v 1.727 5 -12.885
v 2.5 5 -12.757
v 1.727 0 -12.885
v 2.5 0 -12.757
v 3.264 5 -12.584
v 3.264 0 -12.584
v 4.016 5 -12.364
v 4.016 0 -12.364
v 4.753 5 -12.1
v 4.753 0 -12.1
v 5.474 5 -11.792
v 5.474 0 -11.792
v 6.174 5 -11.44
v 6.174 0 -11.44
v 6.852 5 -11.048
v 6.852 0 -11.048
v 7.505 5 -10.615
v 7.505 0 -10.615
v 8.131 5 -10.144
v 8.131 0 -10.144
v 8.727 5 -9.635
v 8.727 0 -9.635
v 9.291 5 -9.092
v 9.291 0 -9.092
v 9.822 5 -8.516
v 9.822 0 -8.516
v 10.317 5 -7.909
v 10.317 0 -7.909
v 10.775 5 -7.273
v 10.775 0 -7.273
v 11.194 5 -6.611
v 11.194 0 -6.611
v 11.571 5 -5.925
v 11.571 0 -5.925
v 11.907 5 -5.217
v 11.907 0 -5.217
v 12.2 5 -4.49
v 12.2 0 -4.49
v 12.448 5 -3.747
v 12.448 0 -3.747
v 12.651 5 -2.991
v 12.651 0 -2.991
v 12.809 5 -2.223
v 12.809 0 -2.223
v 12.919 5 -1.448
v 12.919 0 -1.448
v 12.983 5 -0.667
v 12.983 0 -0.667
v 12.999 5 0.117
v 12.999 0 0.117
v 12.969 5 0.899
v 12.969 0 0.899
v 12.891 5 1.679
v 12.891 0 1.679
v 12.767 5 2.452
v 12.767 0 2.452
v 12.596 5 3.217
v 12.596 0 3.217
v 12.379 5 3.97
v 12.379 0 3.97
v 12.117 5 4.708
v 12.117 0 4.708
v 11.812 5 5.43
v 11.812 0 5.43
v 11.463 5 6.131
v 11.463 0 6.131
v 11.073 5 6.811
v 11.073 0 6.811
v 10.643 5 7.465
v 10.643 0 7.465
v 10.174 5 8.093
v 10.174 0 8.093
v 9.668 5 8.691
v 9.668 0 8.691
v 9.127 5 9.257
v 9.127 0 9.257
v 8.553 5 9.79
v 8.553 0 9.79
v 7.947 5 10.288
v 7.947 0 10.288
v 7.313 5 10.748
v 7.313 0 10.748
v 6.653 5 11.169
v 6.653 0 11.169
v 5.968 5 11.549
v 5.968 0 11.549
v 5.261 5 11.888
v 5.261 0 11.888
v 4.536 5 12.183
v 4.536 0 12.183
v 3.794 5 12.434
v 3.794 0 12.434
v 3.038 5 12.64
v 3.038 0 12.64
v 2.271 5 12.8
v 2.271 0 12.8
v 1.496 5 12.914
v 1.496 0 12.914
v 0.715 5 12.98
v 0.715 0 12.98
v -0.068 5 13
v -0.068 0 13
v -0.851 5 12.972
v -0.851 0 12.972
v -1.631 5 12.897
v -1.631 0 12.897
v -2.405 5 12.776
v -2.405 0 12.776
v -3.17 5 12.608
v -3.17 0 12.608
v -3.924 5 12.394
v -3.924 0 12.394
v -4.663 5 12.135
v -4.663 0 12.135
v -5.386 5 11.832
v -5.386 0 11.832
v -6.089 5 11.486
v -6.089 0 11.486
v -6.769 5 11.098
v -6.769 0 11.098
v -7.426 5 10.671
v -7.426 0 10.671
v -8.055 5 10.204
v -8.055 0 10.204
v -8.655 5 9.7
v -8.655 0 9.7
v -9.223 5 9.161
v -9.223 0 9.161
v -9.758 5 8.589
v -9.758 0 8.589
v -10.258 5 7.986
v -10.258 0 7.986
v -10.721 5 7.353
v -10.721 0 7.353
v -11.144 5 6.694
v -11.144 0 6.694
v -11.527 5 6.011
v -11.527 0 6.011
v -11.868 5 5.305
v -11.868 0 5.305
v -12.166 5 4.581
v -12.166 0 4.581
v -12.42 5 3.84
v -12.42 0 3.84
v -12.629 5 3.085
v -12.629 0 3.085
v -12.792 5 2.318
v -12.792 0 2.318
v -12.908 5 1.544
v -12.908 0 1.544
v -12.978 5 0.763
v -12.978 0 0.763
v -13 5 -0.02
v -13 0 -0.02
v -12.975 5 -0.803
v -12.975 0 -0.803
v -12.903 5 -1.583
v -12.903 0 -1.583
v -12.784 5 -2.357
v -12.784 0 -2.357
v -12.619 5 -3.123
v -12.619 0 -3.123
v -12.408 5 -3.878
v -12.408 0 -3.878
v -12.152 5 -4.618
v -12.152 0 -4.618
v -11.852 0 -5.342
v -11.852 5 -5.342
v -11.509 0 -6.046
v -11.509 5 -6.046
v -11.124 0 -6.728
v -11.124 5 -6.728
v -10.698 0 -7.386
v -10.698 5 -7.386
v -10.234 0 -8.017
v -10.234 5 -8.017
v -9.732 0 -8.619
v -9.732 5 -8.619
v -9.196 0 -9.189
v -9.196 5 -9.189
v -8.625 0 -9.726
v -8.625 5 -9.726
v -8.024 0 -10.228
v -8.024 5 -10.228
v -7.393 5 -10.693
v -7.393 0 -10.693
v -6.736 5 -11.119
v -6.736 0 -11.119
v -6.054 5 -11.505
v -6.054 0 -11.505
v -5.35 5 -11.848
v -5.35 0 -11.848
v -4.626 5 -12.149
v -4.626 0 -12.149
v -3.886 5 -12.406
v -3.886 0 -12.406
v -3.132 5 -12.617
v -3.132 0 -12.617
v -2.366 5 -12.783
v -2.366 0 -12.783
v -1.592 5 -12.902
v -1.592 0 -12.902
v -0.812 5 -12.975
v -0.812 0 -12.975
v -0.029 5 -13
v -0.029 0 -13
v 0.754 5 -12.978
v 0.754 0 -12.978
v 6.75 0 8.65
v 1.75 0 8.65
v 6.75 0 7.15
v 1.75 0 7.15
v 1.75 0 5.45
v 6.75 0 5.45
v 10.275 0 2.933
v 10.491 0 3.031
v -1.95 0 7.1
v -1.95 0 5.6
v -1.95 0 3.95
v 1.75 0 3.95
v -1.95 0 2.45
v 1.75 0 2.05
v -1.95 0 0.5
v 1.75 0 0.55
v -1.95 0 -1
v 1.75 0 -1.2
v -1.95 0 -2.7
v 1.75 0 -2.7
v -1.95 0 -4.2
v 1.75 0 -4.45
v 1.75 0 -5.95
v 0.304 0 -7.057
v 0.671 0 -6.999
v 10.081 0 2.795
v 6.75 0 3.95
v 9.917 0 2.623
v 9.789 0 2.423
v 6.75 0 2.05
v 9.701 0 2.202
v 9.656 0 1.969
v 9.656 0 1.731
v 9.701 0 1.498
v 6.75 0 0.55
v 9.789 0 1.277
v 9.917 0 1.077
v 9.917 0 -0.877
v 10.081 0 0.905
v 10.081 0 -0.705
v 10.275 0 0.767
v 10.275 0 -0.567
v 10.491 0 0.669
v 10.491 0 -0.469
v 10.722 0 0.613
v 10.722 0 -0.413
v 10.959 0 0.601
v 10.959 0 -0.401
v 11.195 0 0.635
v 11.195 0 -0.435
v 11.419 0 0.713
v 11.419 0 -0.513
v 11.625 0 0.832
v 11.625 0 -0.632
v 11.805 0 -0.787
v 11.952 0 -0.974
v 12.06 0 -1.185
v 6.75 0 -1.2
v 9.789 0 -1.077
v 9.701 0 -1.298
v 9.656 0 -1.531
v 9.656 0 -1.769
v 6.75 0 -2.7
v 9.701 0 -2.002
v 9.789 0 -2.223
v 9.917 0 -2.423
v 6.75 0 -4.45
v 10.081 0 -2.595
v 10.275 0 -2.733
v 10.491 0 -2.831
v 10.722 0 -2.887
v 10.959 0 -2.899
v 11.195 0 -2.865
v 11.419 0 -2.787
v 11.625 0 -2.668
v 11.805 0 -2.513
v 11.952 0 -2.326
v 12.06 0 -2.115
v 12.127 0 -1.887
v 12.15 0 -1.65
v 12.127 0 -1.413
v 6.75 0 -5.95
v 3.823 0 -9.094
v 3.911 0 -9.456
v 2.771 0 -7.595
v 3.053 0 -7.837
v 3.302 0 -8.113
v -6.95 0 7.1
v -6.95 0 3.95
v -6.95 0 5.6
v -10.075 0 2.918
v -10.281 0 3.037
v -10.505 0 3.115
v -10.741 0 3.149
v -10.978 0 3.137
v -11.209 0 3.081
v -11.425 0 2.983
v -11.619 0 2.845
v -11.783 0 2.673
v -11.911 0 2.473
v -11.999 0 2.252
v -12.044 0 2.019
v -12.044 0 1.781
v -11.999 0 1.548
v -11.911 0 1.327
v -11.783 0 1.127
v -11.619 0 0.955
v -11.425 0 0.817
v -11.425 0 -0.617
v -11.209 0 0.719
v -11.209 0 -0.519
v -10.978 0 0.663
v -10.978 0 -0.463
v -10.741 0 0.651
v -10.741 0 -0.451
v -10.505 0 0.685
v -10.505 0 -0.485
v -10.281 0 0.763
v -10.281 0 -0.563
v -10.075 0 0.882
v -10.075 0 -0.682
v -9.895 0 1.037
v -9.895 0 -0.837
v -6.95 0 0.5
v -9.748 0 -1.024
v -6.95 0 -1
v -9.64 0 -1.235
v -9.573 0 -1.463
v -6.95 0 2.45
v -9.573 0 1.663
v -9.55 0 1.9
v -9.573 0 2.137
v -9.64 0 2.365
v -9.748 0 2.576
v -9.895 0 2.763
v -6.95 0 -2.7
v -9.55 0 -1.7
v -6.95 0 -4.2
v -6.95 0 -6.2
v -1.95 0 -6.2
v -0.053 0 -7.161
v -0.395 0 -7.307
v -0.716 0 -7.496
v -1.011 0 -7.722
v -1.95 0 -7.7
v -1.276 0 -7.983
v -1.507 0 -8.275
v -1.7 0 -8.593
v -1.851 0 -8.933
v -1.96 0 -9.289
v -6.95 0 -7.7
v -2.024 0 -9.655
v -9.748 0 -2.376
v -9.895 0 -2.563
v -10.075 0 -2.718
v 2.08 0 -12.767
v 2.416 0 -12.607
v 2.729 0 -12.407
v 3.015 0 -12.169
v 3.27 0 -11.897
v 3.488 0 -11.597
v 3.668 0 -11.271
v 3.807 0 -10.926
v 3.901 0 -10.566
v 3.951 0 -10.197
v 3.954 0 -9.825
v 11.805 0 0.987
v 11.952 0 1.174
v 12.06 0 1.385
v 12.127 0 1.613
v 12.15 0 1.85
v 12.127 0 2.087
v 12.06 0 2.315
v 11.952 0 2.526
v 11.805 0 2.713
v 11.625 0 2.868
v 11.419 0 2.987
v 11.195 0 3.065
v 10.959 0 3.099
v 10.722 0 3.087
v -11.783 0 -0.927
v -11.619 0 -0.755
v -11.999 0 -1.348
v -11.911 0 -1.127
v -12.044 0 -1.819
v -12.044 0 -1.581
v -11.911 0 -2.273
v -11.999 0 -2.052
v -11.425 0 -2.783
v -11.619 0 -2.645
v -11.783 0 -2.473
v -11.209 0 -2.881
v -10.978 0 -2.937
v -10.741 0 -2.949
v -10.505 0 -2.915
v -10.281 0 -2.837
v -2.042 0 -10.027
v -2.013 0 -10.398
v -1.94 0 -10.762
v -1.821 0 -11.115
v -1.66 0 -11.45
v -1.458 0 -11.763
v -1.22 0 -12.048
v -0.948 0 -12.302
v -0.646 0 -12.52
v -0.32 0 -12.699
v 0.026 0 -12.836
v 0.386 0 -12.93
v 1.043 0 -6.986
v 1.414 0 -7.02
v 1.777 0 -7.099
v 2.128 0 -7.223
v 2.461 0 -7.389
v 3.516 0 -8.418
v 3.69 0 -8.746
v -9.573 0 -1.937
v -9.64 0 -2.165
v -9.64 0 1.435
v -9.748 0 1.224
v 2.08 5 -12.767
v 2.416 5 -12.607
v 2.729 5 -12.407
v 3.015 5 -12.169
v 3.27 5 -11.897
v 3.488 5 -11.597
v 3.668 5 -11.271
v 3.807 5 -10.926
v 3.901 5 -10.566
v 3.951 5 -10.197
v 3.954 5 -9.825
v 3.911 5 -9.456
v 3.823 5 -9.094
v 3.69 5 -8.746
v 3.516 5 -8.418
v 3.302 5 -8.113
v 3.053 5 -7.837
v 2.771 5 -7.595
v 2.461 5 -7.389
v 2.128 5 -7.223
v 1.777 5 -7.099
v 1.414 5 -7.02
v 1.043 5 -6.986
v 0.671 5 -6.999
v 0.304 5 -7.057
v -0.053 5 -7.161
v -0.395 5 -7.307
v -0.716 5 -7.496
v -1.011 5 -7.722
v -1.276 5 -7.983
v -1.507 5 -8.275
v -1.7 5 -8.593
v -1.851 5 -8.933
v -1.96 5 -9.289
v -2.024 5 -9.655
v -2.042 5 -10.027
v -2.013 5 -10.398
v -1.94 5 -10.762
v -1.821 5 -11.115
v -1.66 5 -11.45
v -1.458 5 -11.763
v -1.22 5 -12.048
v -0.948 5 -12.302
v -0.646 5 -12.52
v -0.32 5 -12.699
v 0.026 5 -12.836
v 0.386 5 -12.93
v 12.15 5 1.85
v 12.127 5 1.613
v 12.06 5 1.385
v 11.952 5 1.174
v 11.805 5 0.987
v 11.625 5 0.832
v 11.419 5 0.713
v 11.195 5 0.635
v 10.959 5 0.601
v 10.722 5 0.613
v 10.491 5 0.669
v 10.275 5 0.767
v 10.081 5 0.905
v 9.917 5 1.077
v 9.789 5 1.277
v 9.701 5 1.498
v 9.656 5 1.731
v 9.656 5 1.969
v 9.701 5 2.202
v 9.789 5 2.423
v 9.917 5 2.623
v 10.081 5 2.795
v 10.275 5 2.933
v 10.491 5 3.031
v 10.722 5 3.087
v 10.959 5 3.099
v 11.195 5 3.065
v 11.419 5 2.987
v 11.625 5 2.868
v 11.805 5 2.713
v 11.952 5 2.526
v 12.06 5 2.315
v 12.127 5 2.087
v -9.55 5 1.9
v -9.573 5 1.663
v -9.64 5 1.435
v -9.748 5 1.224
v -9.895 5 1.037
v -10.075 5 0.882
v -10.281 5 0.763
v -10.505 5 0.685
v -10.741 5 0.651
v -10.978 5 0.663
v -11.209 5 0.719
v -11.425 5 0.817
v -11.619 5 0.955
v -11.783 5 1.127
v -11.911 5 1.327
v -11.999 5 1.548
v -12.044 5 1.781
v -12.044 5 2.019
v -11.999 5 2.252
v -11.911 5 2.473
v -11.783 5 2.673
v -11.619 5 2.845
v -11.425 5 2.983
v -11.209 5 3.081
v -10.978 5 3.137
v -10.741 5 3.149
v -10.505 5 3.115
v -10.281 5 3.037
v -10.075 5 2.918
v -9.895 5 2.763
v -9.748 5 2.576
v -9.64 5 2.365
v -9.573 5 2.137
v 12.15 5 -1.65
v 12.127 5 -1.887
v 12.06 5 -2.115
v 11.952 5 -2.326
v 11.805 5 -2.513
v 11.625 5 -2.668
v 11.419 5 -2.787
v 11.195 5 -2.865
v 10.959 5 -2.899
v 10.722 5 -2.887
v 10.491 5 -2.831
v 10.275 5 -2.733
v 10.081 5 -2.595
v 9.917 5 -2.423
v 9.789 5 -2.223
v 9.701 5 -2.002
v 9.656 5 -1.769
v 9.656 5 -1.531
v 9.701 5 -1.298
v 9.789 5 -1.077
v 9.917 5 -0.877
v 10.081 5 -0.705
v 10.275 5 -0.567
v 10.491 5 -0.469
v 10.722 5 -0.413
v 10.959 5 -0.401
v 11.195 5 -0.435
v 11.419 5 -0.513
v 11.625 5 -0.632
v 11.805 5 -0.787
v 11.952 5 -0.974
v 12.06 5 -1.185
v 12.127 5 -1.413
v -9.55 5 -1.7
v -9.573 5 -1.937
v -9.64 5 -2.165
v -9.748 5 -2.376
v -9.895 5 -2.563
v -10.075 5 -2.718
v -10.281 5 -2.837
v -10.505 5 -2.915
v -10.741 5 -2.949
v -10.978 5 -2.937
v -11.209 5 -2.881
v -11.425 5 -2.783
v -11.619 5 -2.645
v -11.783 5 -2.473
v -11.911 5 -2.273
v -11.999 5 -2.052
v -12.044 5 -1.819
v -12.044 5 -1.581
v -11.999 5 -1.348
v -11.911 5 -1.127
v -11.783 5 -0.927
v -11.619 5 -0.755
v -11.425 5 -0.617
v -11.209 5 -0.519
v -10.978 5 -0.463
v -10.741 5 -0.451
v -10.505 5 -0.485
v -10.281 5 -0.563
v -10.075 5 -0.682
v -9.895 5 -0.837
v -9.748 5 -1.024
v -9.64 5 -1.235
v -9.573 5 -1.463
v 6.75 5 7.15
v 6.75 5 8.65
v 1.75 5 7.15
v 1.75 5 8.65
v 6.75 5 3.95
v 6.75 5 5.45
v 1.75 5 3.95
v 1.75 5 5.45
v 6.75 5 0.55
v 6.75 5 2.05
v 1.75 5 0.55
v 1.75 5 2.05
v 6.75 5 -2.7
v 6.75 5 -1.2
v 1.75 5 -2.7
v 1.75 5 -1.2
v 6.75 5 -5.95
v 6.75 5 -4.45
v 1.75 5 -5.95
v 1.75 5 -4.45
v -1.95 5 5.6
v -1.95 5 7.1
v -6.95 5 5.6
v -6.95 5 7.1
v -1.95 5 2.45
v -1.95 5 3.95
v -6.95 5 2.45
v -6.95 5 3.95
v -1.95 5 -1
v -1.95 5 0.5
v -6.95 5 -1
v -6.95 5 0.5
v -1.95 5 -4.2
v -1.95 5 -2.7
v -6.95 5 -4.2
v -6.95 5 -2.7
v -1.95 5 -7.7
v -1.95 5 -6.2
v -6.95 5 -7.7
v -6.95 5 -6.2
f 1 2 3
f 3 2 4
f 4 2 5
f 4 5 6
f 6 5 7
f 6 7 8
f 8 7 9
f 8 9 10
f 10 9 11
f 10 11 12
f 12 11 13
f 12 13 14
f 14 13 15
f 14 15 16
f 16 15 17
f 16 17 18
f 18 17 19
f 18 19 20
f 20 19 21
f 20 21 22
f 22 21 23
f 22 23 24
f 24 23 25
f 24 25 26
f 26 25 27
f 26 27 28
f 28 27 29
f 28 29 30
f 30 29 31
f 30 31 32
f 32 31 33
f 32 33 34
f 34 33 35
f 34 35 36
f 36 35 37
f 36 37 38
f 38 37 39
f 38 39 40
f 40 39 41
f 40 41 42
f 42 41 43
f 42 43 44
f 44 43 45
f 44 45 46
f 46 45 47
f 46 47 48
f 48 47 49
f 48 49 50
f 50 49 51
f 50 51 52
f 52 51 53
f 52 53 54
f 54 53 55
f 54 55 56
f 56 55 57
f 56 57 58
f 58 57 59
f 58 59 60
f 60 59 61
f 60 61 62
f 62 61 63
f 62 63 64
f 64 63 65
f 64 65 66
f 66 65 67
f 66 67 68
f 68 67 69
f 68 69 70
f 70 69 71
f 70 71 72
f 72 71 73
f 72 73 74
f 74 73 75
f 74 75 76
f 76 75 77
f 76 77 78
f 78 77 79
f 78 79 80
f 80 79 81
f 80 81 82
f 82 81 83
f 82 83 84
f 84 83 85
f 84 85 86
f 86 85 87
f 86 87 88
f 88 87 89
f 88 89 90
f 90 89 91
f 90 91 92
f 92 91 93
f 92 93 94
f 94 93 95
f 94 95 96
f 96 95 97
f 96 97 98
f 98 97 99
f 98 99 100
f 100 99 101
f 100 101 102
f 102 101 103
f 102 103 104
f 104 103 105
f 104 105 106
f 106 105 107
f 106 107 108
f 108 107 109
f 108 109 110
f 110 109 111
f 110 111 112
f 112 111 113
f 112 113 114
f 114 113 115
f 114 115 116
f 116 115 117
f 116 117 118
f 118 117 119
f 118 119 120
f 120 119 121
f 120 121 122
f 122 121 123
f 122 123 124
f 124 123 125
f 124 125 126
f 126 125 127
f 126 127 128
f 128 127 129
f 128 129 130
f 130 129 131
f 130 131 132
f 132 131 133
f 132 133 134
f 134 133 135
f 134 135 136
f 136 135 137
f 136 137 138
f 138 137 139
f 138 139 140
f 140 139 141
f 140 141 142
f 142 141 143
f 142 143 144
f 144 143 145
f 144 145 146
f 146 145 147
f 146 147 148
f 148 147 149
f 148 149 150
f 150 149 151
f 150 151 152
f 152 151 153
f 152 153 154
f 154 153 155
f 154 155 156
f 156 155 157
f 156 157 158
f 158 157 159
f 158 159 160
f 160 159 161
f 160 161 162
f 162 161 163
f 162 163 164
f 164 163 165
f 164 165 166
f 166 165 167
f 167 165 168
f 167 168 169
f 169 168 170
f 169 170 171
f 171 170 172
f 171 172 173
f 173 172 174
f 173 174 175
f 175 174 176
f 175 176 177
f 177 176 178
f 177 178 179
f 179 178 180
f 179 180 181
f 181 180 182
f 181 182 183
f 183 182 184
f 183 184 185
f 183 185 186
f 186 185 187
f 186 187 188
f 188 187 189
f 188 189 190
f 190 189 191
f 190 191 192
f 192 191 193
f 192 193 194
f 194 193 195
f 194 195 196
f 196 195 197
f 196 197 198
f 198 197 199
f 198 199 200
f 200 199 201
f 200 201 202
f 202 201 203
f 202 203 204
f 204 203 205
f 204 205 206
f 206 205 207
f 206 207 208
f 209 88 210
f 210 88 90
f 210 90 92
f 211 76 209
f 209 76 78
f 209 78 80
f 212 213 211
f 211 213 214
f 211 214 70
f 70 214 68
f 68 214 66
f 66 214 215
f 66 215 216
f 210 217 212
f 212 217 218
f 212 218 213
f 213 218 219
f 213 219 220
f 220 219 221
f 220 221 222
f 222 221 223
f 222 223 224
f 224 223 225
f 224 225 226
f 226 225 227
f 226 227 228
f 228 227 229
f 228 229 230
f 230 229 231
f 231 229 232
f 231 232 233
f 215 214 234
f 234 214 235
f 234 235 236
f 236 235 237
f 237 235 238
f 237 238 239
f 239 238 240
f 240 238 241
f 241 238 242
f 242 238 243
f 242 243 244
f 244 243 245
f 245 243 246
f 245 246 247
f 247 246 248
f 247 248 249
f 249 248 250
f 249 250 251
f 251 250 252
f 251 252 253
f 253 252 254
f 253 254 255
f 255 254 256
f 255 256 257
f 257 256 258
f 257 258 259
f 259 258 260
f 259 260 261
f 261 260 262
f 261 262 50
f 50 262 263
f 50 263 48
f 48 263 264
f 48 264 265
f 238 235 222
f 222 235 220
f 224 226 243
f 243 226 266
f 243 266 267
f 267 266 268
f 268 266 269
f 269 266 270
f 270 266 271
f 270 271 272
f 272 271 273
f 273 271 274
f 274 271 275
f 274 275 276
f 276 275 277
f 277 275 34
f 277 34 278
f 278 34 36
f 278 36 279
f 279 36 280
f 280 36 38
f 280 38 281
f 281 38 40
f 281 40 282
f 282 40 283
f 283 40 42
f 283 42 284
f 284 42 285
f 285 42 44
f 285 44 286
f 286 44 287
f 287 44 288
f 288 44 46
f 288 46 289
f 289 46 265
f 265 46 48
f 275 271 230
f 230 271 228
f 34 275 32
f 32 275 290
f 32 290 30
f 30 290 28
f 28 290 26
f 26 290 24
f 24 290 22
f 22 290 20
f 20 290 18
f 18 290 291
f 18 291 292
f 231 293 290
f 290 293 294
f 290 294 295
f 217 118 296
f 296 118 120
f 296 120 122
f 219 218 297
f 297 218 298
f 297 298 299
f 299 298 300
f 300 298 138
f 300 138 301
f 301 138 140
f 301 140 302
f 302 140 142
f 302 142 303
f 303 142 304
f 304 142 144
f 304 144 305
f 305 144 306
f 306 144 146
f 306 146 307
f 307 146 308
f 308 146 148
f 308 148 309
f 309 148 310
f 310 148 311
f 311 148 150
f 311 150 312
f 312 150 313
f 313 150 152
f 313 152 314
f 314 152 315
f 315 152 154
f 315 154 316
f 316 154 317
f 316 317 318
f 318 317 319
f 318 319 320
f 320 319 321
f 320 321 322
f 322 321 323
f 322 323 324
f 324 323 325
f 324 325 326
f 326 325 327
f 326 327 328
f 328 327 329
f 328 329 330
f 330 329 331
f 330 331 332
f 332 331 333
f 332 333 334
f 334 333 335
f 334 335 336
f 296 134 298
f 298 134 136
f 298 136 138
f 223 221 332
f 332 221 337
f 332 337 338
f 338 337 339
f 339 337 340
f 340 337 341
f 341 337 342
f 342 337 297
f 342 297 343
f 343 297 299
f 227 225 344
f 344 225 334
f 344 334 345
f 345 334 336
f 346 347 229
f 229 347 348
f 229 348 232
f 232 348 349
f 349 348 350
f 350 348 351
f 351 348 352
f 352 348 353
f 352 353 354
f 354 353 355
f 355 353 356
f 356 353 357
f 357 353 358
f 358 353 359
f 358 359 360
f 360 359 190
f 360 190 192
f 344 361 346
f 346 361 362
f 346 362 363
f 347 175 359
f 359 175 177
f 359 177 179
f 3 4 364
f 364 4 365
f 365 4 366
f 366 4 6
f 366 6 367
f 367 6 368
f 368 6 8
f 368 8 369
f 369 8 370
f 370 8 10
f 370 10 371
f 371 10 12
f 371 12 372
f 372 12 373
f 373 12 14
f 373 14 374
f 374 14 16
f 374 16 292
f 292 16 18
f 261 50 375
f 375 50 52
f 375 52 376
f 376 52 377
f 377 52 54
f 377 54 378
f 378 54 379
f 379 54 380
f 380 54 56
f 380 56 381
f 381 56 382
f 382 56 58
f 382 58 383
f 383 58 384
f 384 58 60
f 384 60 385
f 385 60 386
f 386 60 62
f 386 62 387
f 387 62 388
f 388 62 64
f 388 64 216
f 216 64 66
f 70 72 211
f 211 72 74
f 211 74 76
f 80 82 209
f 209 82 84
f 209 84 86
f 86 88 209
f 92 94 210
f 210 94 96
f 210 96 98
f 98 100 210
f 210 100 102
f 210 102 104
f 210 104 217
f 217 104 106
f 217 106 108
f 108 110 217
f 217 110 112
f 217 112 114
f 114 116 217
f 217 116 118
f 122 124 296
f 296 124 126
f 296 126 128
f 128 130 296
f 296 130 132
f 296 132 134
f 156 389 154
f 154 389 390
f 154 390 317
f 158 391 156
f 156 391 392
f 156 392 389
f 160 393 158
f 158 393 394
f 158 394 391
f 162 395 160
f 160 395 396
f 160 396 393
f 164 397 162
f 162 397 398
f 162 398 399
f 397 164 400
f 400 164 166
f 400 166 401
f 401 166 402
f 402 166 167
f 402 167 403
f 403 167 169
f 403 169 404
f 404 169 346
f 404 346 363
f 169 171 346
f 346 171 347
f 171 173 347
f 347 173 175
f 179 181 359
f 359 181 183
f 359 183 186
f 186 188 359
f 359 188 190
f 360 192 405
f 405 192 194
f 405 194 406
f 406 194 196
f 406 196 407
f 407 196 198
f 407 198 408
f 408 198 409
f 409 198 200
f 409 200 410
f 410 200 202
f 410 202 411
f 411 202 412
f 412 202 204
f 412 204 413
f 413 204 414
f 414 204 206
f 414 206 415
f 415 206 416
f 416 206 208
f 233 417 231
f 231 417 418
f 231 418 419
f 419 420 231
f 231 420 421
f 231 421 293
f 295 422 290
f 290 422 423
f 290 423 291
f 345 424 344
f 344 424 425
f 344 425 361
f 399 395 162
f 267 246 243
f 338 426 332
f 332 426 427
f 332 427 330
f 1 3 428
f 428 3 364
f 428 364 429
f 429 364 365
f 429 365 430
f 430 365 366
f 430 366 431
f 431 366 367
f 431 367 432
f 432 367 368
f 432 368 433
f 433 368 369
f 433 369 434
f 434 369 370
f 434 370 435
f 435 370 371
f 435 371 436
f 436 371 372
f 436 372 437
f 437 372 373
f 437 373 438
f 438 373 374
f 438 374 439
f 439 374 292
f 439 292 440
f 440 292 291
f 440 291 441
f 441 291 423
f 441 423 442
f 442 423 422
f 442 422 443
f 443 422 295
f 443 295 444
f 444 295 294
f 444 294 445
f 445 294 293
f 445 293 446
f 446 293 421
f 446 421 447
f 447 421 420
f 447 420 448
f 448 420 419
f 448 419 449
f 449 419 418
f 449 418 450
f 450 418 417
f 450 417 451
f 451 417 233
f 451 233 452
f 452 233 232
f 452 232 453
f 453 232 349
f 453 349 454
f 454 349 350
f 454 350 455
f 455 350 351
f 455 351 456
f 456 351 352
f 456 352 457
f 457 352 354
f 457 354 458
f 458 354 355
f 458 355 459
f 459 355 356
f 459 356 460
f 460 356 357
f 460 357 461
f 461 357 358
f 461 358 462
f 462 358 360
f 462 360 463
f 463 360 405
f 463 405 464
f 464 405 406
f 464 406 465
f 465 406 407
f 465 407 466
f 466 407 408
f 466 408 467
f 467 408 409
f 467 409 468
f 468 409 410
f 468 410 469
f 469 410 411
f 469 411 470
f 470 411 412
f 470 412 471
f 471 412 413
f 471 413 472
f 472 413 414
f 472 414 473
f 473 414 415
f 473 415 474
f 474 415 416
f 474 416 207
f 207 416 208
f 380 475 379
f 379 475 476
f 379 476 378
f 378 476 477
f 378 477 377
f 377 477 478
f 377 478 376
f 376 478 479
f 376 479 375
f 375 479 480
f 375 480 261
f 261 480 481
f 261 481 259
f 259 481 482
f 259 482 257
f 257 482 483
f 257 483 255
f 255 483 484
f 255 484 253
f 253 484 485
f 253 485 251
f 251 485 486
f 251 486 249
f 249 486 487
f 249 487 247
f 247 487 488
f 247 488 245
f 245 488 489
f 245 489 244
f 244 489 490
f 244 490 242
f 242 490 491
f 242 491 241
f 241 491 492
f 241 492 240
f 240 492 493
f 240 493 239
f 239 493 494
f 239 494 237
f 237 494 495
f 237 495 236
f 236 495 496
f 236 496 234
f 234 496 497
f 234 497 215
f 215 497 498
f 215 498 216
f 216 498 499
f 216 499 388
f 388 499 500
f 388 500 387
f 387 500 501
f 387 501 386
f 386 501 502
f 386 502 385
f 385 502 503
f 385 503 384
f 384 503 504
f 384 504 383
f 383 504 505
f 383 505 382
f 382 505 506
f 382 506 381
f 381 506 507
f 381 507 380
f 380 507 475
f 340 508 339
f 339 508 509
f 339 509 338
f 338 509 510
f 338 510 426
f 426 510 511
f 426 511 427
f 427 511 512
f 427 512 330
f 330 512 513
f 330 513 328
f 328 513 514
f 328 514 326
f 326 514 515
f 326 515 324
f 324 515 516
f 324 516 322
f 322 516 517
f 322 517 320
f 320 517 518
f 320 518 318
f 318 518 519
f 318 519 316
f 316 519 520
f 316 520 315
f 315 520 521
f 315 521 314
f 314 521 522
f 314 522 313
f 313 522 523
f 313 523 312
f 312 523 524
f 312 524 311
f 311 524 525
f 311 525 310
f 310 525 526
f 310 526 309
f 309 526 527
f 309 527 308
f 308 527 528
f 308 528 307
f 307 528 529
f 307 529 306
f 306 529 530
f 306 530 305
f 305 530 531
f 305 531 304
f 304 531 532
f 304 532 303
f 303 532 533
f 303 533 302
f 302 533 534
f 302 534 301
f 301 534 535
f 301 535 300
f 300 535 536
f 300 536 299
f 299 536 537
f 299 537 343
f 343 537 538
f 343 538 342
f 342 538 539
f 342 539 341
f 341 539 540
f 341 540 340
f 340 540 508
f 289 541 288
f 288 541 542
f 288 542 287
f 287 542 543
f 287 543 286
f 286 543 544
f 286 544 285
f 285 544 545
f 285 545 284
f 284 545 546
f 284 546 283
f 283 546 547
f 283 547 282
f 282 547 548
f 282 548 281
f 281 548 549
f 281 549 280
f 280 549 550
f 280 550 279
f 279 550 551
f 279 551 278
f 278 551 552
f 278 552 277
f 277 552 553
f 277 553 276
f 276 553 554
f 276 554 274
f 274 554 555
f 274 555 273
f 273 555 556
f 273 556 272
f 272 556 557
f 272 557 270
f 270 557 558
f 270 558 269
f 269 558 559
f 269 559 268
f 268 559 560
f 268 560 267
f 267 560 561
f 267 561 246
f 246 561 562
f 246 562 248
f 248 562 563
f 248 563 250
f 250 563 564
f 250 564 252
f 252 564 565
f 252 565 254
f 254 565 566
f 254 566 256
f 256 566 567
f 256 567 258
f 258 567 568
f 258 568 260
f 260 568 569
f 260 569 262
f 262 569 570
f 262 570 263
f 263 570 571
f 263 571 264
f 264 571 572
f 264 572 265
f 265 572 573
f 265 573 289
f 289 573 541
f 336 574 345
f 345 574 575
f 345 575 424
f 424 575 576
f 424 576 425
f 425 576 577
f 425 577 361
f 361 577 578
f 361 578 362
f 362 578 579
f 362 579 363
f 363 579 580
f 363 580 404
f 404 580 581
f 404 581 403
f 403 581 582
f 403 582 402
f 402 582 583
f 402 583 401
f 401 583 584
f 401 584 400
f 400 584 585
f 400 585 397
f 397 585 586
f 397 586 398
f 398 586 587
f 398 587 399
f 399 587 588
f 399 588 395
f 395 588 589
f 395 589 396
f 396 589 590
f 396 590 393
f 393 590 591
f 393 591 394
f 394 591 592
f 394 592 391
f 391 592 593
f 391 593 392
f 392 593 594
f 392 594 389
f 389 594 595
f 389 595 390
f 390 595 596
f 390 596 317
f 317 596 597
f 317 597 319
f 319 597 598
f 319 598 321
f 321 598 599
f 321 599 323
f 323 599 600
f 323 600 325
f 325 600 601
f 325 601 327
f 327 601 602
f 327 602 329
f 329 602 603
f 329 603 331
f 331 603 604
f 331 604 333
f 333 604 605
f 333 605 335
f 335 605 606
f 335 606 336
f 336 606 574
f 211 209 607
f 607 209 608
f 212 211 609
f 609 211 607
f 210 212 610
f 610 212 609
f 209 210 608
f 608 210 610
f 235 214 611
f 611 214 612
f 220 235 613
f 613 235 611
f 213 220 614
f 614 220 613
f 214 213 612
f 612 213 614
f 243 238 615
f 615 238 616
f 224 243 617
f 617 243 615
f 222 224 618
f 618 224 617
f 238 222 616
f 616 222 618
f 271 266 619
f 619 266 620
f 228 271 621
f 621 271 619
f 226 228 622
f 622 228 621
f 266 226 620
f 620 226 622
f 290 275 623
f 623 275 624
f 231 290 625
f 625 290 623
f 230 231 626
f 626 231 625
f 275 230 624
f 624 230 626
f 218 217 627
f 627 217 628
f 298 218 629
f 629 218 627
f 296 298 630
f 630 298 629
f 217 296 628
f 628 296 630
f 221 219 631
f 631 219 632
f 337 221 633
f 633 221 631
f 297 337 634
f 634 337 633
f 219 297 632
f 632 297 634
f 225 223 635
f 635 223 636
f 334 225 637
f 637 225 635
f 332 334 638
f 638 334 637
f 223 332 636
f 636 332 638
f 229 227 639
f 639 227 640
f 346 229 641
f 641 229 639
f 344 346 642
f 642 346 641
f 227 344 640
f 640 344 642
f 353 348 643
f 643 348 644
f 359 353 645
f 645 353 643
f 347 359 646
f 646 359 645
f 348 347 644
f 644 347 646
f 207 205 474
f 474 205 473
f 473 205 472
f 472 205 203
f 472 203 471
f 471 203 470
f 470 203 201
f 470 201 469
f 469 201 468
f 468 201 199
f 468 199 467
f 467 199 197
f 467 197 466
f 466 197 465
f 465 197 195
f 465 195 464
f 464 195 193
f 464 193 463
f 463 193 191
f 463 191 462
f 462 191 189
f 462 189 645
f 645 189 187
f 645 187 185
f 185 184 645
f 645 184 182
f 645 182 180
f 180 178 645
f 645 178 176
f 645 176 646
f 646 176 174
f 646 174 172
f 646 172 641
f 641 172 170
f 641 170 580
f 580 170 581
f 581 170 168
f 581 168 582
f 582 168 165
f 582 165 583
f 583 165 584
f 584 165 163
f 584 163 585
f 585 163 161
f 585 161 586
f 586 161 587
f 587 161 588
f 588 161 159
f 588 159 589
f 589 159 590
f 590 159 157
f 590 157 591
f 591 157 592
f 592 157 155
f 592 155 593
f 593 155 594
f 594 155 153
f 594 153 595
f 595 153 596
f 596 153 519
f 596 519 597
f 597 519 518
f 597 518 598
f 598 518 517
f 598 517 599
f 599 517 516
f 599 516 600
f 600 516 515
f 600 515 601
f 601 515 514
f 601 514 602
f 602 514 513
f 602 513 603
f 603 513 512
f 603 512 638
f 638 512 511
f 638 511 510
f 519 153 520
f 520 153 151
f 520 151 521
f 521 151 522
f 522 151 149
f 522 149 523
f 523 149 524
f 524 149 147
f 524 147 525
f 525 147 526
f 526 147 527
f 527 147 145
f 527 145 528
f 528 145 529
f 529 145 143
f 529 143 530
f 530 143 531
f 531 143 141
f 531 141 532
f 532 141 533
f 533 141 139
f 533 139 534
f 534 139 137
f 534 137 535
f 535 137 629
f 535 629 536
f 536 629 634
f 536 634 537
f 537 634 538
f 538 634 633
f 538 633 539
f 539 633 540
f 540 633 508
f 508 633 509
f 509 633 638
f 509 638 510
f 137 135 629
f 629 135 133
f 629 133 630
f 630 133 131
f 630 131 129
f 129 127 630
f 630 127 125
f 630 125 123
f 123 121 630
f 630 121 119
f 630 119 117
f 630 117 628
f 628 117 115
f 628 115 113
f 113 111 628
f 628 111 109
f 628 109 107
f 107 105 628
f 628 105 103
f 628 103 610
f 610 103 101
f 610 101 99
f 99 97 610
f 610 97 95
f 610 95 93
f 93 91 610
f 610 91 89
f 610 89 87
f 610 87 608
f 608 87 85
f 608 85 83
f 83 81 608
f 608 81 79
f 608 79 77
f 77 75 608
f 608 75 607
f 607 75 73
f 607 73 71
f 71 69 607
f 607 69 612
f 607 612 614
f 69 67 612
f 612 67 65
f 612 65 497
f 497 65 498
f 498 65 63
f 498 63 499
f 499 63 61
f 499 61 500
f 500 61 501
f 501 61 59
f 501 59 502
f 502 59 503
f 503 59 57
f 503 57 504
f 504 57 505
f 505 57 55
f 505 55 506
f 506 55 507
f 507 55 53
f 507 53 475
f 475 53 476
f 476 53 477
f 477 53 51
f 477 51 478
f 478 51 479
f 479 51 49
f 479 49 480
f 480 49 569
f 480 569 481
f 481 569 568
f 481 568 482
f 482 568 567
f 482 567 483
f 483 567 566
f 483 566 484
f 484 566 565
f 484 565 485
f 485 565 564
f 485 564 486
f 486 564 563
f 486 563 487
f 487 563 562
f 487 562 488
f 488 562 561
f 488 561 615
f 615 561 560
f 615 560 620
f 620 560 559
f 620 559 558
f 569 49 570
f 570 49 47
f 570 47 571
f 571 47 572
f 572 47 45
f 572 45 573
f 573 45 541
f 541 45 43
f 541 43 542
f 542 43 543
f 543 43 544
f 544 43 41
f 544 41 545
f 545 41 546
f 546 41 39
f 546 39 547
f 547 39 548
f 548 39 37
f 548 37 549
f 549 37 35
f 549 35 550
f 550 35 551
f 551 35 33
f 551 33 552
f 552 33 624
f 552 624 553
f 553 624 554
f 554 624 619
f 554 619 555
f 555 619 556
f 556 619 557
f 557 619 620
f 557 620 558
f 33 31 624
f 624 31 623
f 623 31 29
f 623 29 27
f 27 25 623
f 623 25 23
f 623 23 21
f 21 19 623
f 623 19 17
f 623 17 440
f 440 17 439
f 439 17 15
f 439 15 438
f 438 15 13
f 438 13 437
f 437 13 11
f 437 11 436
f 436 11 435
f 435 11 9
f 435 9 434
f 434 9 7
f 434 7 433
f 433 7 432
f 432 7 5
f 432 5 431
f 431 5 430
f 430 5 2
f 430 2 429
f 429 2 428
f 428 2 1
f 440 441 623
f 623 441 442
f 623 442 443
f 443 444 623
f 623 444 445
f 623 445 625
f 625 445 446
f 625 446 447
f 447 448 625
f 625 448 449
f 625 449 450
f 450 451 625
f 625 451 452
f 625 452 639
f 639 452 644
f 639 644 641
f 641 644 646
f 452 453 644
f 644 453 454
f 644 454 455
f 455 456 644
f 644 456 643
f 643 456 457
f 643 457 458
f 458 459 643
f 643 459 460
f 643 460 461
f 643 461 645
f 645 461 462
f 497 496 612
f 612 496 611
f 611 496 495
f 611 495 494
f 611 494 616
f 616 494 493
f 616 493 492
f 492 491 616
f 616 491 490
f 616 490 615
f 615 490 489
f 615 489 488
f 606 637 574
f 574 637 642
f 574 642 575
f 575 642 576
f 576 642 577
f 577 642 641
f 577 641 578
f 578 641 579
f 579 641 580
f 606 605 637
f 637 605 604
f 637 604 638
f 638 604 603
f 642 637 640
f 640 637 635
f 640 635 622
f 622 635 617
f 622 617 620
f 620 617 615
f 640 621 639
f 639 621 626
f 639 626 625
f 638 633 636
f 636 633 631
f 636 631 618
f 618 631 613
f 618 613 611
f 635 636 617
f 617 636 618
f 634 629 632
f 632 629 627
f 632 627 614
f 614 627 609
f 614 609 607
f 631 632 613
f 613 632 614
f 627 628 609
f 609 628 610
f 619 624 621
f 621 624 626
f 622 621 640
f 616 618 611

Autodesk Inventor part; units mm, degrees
ref_plane "YZ Plane" through (0, 0, 0) normal (1, 0, 0) x (0, 1, 0)
ref_plane "XZ Plane" through (0, 0, 0) normal (0, 1, 0) x (-1, 0, 0)
ref_plane "XY Plane" through (0, 0, 0) normal (0, 0, 1) x (1, 0, 0)
sketch "Sketch3" plane through (0, 0, 0) normal (0, 1, 0) x (-1, 0, 0)
  circle A0 centre (0, 0) radius 13.5
  line L0 (-6.7499, 8.6501) -> (-1.7499, 8.6501)
  line L1 (-1.7499, 8.6501) -> (-1.7499, 7.1501)
  line L2 (-1.7499, 7.1501) -> (-6.7499, 7.1501)
  line L3 (-6.7499, 7.1501) -> (-6.7499, 8.6501)
  line L4 (-6.75, 5.45) -> (-1.7499, 5.45)
  line L5 (-1.7499, 5.45) -> (-1.7499, 3.95)
  line L6 (-1.7499, 3.95) -> (-6.75, 3.95)
  line L7 (-6.75, 3.95) -> (-6.75, 5.45)
  line L8 (-6.75, 2.0498) -> (-1.75, 2.0498)
  line L9 (-1.75, 2.0498) -> (-1.75, 0.5498)
  line L10 (-1.75, 0.5498) -> (-6.75, 0.5498)
  line L11 (-6.75, 0.5498) -> (-6.75, 2.0498)
  line L12 (-6.75, -1.2) -> (-1.75, -1.2)
  line L13 (-1.75, -1.2) -> (-1.75, -2.7)
  line L14 (-1.75, -2.7) -> (-6.75, -2.7)
  line L15 (-6.75, -2.7) -> (-6.75, -1.2)
  line L16 (-6.75, -4.4501) -> (-1.75, -4.4501)
  line L17 (-1.75, -4.4501) -> (-1.75, -5.9501)
  line L18 (-1.75, -5.9501) -> (-6.75, -5.9501)
  line L19 (-6.75, -5.9501) -> (-6.75, -4.4501)
  line L20 (1.9499, 7.1) -> (6.9499, 7.1)
  line L21 (6.9499, 7.1) -> (6.9499, 5.6)
  line L22 (6.9499, 5.6) -> (1.9499, 5.6)
  line L23 (1.9499, 5.6) -> (1.9499, 7.1)
  line L24 (1.9499, 3.95) -> (6.9499, 3.95)
  line L25 (6.9499, 3.95) -> (6.9499, 2.45)
  line L26 (6.9499, 2.45) -> (1.9499, 2.45)
  line L27 (1.9499, 2.45) -> (1.9499, 3.95)
  line L28 (1.9499, 0.5004) -> (6.9499, 0.5004)
  line L29 (6.9499, 0.5004) -> (6.9499, -0.9996)
  line L30 (6.9499, -0.9996) -> (1.9499, -0.9996)
  line L31 (1.9499, -0.9996) -> (1.9499, 0.5004)
  line L32 (1.9499, -2.7) -> (6.9499, -2.7)
  line L33 (6.9499, -2.7) -> (6.9499, -4.2)
  line L34 (6.9499, -4.2) -> (1.9499, -4.2)
  line L35 (1.9499, -4.2) -> (1.9499, -2.7)
  line L36 (1.9499, -6.1999) -> (6.9499, -6.1999)
  line L37 (6.9499, -6.1999) -> (6.9499, -7.6999)
  line L38 (6.9499, -7.6999) -> (1.9499, -7.6999)
  line L39 (1.9499, -7.6999) -> (1.9499, -6.1999)
  point P0 (-6.7499, 7.9001)
  point P1 (-6.75, 4.7)
  point P2 (-5.95, -5.2001)
  dimension "d3" = 27
  dimension "d4" = 5
  dimension "d5" = 1.5
  dimension "d6" = 1.5
  dimension "d7" = 5
  dimension "d8" = 1.5
  dimension "d9" = 5
  dimension "d10" = 1.5
  dimension "d11" = 5
  dimension "d12" = 1.5
  dimension "d13" = 0.8
  dimension "d14" = 5
  dimension "d15" = 1.5
  dimension "d16" = 5
  dimension "d17" = 1.5
  dimension "d18" = 5
  dimension "d19" = 1.5
  dimension "d20" = 5
  dimension "d21" = 1.5
  dimension "d22" = 1.5
extrude "Extrusion1" add sketch "Sketch3" along normal blind 5
sketch "Sketch4" plane through (0, 5, 0) normal (0, 1, 0) x (1, 0, 0)
  circle A0 centre (-10.8, -1.9) radius 0.75
  circle A1 centre (-10.8, 1.7) radius 0.75
  circle A2 centre (10.9, -1.85) radius 0.75
  circle A3 centre (10.9, 1.65) radius 0.75
  circle A4 centre (0.958, 9.985) radius 3
  point P0 (0, 0)
  dimension "d25" = 1.5
  dimension "d26" = 1.5
  dimension "d27" = 1.5
  dimension "d28" = 1.5
  dimension "d29" = 6
extrude "Extrusion2" cut sketch "Sketch4" against normal blind 5
sketch "Sketch5" plane through (0, 5, 0) normal (0, 1, 0) x (1, 0, 0)
  circle A0 centre (-10.8, -1.9) radius 0.75 projected
  circle A1 centre (-10.8, -1.9) radius 1.25
  circle A2 centre (-10.8, 1.7) radius 0.75 projected
  circle A3 centre (-10.8, 1.7) radius 1.25
  circle A4 centre (10.9, -1.85) radius 0.75 projected
  circle A5 centre (10.9, -1.85) radius 1.25
  circle A6 centre (10.9, 1.65) radius 0.75 projected
  circle A7 centre (10.9, 1.65) radius 1.25
  point P0 (0, 0)
  dimension "d33" = 2.5
  dimension "d34" = 2.5
  dimension "d35" = 2.5
  dimension "d36" = 2.5
extrude "Extrusion3" cut sketch "Sketch5" against normal blind 5 contours A0 | A1 | A2 | A3 | A4 | A5 | A6 | A7
sketch "Sketch6" plane through (0, 5, 0) normal (0, 1, 0) x (1, 0, 0)
  circle A0 centre (0, 0) radius 13.5
  circle A1 centre (0, 0) radius 13
  dimension "d41" = 26
extrude "Extrusion4" cut sketch "Sketch6" against normal blind 10
properties part number "Seperator_V2_3DPrint"
